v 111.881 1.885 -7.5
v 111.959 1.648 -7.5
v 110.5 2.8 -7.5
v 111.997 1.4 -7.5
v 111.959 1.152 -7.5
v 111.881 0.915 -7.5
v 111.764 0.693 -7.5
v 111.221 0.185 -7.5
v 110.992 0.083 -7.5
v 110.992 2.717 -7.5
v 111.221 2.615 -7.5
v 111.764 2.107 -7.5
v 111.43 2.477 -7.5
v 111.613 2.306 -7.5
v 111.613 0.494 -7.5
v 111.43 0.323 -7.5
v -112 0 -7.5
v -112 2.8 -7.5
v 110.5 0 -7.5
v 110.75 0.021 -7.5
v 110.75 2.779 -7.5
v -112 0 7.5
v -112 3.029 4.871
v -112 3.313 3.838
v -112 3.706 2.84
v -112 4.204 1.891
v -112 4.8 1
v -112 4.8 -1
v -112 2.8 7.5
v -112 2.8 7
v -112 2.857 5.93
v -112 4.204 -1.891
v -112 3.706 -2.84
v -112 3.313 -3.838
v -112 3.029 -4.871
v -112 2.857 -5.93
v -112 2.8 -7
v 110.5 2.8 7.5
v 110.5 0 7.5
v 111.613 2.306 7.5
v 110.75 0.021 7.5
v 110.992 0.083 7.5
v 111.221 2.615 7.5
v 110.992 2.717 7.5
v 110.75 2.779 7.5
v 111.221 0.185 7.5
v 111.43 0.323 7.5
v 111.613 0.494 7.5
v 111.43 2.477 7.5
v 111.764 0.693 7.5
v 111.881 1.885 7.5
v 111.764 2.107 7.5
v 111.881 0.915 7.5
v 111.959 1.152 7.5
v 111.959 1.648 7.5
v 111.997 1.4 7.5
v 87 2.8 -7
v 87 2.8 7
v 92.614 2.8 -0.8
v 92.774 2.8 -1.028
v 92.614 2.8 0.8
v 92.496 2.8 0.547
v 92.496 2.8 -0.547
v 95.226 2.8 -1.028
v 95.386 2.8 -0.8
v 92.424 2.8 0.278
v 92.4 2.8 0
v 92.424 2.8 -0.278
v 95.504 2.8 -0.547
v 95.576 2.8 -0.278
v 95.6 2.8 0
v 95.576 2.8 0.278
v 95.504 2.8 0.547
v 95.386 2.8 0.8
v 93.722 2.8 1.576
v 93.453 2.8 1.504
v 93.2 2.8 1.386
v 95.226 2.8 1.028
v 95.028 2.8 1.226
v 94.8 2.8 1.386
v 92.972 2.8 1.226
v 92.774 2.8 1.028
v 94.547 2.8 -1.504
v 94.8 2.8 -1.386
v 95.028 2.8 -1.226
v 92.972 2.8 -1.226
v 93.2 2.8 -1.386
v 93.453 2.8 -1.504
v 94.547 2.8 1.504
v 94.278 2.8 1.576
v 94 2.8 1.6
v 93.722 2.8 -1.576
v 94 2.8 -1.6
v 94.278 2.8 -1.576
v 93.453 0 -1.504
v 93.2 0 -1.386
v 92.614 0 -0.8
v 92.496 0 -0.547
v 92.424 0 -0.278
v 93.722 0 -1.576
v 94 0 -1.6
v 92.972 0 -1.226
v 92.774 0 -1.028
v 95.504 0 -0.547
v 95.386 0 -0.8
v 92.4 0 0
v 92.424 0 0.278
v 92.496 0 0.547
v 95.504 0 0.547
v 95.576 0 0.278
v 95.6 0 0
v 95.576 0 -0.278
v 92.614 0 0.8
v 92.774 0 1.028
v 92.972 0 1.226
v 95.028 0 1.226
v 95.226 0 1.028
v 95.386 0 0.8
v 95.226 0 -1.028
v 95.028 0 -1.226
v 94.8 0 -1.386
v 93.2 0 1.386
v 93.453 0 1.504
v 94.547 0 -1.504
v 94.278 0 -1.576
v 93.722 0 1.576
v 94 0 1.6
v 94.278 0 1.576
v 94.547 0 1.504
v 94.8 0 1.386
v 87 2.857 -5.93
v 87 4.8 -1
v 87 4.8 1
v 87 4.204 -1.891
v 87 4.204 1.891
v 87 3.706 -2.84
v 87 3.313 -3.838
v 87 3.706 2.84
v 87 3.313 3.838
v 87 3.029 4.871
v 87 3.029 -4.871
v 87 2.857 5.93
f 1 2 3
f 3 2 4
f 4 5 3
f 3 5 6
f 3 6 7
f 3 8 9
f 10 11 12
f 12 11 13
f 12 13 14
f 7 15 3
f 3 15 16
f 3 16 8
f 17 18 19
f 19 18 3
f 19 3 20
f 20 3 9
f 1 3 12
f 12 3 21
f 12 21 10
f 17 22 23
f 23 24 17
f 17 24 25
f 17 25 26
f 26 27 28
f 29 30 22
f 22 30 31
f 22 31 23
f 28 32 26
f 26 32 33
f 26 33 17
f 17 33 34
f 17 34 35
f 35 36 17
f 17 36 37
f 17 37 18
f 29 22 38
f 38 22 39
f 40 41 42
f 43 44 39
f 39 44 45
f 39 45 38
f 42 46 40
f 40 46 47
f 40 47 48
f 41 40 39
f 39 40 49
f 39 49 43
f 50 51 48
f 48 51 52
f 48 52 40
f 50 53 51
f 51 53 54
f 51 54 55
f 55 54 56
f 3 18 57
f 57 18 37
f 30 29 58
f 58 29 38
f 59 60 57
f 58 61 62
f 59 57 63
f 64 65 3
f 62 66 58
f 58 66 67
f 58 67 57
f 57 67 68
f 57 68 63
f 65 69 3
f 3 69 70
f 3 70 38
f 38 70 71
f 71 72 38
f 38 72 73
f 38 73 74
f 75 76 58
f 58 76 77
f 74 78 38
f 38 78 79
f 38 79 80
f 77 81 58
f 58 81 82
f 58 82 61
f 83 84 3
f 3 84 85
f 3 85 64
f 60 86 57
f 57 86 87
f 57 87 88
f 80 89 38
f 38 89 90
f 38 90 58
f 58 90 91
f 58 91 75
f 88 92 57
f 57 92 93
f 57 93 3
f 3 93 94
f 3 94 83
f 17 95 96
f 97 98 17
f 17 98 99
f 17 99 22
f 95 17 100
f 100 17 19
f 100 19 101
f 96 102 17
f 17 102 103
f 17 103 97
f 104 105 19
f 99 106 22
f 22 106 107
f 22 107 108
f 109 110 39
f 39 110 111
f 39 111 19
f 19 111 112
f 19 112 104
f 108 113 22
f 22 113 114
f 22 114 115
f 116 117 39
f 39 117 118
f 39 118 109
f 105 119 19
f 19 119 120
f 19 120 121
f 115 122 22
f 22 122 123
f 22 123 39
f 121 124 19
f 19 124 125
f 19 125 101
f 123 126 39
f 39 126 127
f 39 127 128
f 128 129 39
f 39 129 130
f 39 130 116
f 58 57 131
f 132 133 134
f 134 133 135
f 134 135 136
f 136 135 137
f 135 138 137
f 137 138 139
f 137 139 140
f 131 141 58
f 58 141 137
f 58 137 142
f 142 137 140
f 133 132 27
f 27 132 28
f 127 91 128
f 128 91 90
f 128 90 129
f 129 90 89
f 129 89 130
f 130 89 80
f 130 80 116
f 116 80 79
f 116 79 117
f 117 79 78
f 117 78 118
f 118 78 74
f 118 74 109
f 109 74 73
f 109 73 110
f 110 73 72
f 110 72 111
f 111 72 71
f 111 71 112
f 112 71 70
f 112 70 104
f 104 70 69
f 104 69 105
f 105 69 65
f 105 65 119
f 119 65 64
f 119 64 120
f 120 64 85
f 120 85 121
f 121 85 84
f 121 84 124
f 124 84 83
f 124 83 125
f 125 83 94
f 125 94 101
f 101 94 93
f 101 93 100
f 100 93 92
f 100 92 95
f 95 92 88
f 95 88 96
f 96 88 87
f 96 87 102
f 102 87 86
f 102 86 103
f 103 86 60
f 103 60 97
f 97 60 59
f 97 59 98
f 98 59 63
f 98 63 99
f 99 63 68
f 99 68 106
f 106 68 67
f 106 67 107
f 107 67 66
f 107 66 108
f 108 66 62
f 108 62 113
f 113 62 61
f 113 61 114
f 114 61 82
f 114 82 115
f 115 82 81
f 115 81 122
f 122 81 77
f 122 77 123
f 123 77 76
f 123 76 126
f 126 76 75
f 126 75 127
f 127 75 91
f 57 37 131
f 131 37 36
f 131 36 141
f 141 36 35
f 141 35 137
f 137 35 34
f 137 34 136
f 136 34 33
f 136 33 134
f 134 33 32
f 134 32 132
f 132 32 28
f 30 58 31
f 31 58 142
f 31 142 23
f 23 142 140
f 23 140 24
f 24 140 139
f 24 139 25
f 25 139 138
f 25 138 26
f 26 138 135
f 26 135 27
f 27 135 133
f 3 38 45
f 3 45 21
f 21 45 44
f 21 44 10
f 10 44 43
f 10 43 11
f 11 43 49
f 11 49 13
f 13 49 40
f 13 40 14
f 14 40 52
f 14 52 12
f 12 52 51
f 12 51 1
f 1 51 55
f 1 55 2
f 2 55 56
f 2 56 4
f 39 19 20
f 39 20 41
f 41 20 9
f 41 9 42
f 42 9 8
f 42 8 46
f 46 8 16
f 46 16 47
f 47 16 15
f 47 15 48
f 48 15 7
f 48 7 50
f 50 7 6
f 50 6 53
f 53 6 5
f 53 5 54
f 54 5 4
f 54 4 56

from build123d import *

# Parameters (mm, degrees)
SKETCH1_W           = 224
SKETCH1_H           = 15
BOSS_EXTRUDE1_DEPTH = 2.8
SKETCH2_W           = 199
SKETCH2_H           = 2
BOSS_EXTRUDE2_DEPTH = 2
SKETCH3_R           = 1.6
CUT_EXTRUDE1_DEPTH  = 113.285751545
FILLET1_R           = 10
FILLET2_R           = 1.5


with BuildPart() as part:
    # Sketch1 → Boss-Extrude1 (new body)
    with BuildSketch(Plane(origin=(0, 0, 0), x_dir=(1, 0, 0), z_dir=(0, 1, 0))):
        Rectangle(SKETCH1_W, SKETCH1_H)
    extrude(amount=BOSS_EXTRUDE1_DEPTH)

    # Sketch2 → Boss-Extrude2 (add)
    with BuildSketch(Plane(origin=(0, 2.8, 0), x_dir=(1, 0, 0), z_dir=(0, 1, 0))):
        with Locations((-12.5, 0)):
            Rectangle(SKETCH2_W, SKETCH2_H)
    extrude(amount=BOSS_EXTRUDE2_DEPTH)

    # Sketch3 → Cut-Extrude1 (cut, through all)
    with BuildSketch(Plane(origin=(0, 2.8, 0), x_dir=(1, 0, 0), z_dir=(0, 1, 0))):
        with Locations(Location((94, 0, 0), (0, 0, 270))):
            Circle(SKETCH3_R)
    extrude(amount=-CUT_EXTRUDE1_DEPTH, mode=Mode.SUBTRACT)

    # Fillet1
    # the kernel refuses this fillet: 10 mm, written as the material it adds along each edge
    with BuildSketch(Plane(origin=(-112, 2.8, -1), x_dir=(0, 0, -1), z_dir=(1, 0, 0)), Plane(origin=(87, 2.8, 1), x_dir=(0, 0, 1), z_dir=(-1, 0, 0))) as fillet1_piece_1:
        with BuildLine():
            CenterArc((6, 10), FILLET1_R, 233.130102354, 36.869897646)
            Line((0, 2), (0, 0))
            Line((0, 0), (6, 0))
        make_face()
    extrude(amount=199)

    # Fillet2
    # the kernel refuses this fillet: 1.5 mm, written as the material it takes off along each edge
    with BuildSketch(Plane(origin=(112, 0, -11.25), x_dir=(0, 1, 0), z_dir=(0, 0, 1))) as fillet2_piece_1:
        with BuildLine():
            CenterArc((FILLET2_R, FILLET2_R), FILLET2_R, 180, 90)
            Line((0, FILLET2_R), (0, 0))
            Line((0, 0), (FILLET2_R, 0))
        make_face()
    extrude(amount=22.5, mode=Mode.SUBTRACT)
    with BuildSketch(Plane(origin=(112, 2.8, -11.25), x_dir=(0, -1, 0), z_dir=(0, 0, 1))) as fillet2_piece_2:
        with BuildLine():
            CenterArc((FILLET2_R, -FILLET2_R), FILLET2_R, 90, 90)
            Line((0, -FILLET2_R), (0, 0))
            Line((0, 0), (FILLET2_R, 0))
        make_face()
    extrude(amount=22.5, mode=Mode.SUBTRACT)


solid = part.part
